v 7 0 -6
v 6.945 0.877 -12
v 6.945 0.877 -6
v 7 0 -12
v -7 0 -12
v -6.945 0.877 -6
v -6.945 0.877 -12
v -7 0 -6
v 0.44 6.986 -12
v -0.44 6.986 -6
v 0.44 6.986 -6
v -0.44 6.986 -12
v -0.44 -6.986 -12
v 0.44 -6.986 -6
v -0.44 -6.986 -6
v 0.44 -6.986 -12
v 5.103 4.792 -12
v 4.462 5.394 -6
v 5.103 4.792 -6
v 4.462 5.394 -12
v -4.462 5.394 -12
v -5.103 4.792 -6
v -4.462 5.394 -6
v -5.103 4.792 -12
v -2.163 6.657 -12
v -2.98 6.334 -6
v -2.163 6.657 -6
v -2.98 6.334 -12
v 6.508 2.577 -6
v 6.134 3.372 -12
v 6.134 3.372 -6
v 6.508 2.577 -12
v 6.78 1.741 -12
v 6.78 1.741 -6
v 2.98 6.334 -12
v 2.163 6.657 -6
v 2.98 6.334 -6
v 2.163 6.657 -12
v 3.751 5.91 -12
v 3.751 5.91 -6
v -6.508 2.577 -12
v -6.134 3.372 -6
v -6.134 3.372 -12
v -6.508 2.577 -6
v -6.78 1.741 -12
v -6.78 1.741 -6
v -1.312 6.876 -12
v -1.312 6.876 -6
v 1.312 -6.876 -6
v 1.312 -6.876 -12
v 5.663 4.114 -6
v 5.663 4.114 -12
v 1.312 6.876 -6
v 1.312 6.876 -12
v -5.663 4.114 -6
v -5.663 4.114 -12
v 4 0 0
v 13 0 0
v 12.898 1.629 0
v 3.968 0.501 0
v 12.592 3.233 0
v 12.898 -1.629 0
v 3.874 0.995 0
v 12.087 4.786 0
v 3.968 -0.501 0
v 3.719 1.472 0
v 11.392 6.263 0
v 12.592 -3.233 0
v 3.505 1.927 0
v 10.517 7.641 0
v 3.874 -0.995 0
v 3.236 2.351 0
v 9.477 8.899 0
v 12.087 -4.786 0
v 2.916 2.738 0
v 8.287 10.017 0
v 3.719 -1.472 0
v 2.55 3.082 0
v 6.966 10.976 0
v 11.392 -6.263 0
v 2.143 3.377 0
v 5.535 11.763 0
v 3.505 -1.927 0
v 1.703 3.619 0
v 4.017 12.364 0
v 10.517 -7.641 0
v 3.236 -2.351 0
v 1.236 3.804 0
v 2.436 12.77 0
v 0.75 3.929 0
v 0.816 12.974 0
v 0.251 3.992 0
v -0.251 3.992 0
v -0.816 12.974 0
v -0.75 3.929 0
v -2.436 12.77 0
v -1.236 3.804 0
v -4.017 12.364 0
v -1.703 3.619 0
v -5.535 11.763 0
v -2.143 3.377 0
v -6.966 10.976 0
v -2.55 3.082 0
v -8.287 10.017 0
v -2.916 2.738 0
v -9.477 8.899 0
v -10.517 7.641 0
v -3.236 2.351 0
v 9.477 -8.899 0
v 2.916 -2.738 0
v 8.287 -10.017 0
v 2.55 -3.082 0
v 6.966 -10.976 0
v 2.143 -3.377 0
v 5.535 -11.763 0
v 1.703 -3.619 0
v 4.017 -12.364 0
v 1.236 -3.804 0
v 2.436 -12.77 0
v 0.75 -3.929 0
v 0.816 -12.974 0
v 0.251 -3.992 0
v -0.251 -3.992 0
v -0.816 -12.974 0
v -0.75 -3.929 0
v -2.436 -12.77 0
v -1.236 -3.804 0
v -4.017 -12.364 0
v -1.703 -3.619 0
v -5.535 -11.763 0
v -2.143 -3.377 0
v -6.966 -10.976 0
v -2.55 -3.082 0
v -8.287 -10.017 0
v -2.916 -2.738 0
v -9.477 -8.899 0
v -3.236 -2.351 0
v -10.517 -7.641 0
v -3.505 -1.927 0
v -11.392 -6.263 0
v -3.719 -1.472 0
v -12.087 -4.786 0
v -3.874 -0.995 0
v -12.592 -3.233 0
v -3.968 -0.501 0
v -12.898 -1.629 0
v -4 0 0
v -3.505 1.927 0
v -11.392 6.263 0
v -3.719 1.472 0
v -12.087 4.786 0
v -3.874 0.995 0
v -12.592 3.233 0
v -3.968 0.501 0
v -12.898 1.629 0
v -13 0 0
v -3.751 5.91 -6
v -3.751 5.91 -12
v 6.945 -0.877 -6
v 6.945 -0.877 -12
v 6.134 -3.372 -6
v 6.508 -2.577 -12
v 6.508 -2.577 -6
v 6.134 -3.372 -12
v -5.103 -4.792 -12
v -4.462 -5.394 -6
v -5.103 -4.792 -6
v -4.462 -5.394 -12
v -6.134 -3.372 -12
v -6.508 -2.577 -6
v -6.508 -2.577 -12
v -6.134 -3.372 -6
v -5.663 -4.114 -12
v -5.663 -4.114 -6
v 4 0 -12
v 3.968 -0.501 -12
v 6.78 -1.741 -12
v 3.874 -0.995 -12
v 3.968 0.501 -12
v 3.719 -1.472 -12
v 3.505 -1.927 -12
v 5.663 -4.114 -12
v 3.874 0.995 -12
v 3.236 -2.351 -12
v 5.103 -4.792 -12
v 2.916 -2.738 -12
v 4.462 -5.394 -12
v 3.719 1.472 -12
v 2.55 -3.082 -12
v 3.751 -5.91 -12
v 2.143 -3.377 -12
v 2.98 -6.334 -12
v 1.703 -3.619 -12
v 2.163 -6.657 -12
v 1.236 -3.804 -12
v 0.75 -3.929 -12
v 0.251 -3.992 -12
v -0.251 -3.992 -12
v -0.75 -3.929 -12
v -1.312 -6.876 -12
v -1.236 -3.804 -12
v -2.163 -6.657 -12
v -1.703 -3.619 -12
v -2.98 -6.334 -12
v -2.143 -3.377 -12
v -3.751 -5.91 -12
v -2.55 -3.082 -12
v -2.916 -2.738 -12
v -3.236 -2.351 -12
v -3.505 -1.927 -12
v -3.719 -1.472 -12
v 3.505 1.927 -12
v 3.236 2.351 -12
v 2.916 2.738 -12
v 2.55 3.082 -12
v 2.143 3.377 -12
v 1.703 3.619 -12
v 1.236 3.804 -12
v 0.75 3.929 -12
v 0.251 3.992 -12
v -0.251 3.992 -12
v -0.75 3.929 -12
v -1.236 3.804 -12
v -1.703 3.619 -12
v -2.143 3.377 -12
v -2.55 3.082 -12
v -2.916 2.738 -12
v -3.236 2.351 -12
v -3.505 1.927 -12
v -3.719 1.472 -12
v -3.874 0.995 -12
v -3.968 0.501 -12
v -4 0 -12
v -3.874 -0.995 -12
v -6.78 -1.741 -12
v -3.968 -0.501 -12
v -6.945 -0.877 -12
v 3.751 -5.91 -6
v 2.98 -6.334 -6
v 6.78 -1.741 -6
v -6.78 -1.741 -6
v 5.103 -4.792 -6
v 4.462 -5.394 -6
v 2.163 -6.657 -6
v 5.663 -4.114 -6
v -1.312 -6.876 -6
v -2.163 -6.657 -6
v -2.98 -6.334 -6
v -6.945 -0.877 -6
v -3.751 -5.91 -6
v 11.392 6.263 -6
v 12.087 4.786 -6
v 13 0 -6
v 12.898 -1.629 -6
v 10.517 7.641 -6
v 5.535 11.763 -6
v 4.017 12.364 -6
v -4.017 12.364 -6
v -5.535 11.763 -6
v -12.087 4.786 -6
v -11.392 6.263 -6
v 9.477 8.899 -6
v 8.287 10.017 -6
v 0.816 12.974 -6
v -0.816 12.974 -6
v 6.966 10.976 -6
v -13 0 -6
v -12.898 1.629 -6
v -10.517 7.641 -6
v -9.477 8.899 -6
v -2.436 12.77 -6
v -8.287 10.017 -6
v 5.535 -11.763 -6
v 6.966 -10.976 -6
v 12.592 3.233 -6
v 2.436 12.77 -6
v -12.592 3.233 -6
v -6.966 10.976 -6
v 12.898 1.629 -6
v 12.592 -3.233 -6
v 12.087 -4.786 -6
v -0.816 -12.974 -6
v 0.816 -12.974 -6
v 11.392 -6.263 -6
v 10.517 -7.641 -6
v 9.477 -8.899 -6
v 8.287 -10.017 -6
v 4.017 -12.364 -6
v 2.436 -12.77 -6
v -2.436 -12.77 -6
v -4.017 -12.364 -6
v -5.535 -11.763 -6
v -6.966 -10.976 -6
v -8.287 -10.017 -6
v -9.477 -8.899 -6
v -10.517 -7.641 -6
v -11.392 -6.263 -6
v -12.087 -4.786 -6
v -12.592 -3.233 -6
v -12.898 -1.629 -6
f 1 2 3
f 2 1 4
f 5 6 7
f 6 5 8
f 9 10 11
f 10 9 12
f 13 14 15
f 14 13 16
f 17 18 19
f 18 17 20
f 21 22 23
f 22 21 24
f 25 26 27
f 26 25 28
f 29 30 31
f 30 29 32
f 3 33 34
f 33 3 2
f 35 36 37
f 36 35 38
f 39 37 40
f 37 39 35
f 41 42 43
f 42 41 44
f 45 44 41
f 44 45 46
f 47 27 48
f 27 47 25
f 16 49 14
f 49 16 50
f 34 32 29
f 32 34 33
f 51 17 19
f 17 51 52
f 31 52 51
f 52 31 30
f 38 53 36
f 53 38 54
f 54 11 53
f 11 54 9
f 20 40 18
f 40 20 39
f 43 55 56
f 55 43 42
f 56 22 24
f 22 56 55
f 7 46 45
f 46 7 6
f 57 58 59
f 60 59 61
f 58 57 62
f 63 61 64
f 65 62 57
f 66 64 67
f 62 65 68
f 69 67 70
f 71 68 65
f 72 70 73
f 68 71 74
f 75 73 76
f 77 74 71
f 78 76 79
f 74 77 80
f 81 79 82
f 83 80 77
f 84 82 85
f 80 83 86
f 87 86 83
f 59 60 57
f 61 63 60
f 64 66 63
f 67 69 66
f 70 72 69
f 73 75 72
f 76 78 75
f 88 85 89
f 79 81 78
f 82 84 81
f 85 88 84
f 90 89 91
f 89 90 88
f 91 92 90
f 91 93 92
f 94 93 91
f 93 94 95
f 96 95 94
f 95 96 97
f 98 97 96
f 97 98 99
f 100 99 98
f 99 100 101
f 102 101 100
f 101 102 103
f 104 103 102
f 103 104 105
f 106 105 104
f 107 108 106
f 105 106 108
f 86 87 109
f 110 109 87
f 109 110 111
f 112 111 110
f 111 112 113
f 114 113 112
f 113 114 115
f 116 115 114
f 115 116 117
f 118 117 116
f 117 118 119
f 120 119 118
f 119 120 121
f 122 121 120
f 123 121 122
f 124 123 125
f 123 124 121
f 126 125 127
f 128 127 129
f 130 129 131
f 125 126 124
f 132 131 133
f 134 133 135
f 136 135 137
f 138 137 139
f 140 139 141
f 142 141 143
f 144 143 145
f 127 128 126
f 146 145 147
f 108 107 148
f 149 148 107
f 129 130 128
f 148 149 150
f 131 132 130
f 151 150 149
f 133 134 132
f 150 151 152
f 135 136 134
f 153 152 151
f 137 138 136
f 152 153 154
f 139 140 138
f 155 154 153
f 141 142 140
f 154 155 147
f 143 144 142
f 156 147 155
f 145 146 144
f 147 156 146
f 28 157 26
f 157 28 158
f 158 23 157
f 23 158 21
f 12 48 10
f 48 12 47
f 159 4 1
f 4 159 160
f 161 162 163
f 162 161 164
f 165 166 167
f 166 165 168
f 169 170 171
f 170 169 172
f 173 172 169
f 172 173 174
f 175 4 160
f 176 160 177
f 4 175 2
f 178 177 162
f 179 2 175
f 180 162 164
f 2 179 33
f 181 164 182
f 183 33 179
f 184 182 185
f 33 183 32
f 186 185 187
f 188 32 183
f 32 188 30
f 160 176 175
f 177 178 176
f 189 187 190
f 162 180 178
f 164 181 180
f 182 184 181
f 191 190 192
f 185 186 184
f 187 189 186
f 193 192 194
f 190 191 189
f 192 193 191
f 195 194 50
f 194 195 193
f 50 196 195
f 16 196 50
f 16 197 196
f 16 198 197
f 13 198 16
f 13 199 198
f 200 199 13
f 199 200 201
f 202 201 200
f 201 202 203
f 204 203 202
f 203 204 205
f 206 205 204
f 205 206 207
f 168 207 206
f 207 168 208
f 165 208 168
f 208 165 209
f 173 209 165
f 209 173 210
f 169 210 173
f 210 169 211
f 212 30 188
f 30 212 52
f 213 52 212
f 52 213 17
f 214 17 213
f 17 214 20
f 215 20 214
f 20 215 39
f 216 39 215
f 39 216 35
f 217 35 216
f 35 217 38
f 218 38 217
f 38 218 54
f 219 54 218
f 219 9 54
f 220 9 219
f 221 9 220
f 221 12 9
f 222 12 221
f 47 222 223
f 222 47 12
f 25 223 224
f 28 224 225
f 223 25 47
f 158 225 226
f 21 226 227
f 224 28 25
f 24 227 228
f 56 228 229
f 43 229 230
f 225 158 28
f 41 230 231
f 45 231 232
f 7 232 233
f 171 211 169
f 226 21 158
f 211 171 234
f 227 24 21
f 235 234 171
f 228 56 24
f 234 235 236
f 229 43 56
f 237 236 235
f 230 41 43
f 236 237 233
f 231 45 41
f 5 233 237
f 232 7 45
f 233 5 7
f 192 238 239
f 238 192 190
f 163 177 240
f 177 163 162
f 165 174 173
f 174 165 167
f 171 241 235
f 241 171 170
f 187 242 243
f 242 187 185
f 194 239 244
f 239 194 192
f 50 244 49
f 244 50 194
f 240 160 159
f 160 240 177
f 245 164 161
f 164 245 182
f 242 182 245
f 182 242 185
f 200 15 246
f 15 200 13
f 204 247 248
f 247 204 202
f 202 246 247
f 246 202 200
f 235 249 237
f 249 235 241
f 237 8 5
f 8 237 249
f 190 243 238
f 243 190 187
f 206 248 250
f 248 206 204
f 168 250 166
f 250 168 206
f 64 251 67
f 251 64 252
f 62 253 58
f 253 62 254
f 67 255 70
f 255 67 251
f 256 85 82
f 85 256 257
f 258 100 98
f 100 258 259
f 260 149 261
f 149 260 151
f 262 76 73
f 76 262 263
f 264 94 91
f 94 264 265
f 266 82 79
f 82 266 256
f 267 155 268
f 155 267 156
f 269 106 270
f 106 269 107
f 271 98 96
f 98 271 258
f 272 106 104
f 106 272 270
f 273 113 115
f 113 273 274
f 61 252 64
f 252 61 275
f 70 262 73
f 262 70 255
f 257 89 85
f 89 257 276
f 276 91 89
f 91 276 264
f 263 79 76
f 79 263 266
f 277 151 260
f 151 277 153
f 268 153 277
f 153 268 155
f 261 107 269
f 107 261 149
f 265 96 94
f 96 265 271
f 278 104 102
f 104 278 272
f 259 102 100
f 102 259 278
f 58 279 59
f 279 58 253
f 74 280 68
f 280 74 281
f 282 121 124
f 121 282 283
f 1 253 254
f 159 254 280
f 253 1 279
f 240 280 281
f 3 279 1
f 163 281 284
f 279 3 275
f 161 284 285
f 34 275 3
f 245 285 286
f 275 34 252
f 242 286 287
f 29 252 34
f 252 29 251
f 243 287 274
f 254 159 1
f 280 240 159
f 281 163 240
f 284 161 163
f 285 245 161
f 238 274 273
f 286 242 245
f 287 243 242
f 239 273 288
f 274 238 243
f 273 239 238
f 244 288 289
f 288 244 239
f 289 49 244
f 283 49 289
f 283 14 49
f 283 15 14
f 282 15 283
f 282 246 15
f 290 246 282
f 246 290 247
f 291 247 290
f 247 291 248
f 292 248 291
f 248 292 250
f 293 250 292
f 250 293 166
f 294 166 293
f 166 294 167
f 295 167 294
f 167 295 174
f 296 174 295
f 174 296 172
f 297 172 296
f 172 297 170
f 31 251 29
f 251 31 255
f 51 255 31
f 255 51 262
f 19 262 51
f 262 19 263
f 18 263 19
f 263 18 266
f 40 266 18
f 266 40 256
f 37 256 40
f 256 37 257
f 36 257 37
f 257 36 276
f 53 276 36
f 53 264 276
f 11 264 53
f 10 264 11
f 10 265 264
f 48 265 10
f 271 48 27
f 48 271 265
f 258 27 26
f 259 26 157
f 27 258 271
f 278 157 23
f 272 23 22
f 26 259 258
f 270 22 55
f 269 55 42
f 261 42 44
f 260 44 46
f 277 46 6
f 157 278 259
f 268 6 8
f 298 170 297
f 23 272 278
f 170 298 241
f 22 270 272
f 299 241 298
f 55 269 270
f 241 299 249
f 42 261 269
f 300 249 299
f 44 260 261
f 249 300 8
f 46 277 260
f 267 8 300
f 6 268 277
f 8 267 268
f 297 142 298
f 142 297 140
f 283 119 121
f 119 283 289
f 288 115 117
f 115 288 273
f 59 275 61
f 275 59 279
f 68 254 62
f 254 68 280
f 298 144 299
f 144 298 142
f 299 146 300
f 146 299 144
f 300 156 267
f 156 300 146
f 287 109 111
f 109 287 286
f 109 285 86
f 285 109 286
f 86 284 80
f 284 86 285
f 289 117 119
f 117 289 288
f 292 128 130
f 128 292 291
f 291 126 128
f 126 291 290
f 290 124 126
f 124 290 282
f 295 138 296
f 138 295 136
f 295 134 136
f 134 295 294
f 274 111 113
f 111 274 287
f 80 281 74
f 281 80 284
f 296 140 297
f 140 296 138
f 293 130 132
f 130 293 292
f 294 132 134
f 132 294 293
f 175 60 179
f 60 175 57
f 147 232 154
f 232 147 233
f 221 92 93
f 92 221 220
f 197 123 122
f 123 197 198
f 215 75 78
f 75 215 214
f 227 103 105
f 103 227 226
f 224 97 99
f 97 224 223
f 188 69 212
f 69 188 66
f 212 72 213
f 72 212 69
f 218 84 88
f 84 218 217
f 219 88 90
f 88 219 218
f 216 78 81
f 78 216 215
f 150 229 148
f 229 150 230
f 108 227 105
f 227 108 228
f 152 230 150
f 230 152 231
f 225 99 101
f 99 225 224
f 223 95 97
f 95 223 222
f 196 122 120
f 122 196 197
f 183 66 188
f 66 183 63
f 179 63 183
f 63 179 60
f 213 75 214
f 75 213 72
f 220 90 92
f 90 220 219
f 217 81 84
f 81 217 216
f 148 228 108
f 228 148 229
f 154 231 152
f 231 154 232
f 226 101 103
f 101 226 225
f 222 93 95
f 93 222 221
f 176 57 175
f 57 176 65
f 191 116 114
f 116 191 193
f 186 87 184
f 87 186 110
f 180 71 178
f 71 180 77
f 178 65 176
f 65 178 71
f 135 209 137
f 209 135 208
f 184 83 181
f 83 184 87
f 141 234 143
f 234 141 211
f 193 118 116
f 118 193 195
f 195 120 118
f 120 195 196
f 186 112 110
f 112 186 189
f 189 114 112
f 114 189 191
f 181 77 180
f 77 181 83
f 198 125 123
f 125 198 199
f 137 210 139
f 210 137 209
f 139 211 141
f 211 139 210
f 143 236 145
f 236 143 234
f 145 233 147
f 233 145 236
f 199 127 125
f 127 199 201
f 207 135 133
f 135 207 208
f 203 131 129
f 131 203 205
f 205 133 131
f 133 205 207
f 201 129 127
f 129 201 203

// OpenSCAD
$fn = 50;


difference() {
	union() {
		translate(v = [0, 0, -12.0000000000]) {
			cylinder(h = 12, r = 7);
		}
		translate(v = [0, 0, -6.0000000000]) {
			cylinder(h = 6, r = 13);
		}
	}
	union() {
		#translate(v = [0, 0, -100.0000000000]) {
			cylinder(h = 200, r = 4.0000000000);
		}
	}
}
